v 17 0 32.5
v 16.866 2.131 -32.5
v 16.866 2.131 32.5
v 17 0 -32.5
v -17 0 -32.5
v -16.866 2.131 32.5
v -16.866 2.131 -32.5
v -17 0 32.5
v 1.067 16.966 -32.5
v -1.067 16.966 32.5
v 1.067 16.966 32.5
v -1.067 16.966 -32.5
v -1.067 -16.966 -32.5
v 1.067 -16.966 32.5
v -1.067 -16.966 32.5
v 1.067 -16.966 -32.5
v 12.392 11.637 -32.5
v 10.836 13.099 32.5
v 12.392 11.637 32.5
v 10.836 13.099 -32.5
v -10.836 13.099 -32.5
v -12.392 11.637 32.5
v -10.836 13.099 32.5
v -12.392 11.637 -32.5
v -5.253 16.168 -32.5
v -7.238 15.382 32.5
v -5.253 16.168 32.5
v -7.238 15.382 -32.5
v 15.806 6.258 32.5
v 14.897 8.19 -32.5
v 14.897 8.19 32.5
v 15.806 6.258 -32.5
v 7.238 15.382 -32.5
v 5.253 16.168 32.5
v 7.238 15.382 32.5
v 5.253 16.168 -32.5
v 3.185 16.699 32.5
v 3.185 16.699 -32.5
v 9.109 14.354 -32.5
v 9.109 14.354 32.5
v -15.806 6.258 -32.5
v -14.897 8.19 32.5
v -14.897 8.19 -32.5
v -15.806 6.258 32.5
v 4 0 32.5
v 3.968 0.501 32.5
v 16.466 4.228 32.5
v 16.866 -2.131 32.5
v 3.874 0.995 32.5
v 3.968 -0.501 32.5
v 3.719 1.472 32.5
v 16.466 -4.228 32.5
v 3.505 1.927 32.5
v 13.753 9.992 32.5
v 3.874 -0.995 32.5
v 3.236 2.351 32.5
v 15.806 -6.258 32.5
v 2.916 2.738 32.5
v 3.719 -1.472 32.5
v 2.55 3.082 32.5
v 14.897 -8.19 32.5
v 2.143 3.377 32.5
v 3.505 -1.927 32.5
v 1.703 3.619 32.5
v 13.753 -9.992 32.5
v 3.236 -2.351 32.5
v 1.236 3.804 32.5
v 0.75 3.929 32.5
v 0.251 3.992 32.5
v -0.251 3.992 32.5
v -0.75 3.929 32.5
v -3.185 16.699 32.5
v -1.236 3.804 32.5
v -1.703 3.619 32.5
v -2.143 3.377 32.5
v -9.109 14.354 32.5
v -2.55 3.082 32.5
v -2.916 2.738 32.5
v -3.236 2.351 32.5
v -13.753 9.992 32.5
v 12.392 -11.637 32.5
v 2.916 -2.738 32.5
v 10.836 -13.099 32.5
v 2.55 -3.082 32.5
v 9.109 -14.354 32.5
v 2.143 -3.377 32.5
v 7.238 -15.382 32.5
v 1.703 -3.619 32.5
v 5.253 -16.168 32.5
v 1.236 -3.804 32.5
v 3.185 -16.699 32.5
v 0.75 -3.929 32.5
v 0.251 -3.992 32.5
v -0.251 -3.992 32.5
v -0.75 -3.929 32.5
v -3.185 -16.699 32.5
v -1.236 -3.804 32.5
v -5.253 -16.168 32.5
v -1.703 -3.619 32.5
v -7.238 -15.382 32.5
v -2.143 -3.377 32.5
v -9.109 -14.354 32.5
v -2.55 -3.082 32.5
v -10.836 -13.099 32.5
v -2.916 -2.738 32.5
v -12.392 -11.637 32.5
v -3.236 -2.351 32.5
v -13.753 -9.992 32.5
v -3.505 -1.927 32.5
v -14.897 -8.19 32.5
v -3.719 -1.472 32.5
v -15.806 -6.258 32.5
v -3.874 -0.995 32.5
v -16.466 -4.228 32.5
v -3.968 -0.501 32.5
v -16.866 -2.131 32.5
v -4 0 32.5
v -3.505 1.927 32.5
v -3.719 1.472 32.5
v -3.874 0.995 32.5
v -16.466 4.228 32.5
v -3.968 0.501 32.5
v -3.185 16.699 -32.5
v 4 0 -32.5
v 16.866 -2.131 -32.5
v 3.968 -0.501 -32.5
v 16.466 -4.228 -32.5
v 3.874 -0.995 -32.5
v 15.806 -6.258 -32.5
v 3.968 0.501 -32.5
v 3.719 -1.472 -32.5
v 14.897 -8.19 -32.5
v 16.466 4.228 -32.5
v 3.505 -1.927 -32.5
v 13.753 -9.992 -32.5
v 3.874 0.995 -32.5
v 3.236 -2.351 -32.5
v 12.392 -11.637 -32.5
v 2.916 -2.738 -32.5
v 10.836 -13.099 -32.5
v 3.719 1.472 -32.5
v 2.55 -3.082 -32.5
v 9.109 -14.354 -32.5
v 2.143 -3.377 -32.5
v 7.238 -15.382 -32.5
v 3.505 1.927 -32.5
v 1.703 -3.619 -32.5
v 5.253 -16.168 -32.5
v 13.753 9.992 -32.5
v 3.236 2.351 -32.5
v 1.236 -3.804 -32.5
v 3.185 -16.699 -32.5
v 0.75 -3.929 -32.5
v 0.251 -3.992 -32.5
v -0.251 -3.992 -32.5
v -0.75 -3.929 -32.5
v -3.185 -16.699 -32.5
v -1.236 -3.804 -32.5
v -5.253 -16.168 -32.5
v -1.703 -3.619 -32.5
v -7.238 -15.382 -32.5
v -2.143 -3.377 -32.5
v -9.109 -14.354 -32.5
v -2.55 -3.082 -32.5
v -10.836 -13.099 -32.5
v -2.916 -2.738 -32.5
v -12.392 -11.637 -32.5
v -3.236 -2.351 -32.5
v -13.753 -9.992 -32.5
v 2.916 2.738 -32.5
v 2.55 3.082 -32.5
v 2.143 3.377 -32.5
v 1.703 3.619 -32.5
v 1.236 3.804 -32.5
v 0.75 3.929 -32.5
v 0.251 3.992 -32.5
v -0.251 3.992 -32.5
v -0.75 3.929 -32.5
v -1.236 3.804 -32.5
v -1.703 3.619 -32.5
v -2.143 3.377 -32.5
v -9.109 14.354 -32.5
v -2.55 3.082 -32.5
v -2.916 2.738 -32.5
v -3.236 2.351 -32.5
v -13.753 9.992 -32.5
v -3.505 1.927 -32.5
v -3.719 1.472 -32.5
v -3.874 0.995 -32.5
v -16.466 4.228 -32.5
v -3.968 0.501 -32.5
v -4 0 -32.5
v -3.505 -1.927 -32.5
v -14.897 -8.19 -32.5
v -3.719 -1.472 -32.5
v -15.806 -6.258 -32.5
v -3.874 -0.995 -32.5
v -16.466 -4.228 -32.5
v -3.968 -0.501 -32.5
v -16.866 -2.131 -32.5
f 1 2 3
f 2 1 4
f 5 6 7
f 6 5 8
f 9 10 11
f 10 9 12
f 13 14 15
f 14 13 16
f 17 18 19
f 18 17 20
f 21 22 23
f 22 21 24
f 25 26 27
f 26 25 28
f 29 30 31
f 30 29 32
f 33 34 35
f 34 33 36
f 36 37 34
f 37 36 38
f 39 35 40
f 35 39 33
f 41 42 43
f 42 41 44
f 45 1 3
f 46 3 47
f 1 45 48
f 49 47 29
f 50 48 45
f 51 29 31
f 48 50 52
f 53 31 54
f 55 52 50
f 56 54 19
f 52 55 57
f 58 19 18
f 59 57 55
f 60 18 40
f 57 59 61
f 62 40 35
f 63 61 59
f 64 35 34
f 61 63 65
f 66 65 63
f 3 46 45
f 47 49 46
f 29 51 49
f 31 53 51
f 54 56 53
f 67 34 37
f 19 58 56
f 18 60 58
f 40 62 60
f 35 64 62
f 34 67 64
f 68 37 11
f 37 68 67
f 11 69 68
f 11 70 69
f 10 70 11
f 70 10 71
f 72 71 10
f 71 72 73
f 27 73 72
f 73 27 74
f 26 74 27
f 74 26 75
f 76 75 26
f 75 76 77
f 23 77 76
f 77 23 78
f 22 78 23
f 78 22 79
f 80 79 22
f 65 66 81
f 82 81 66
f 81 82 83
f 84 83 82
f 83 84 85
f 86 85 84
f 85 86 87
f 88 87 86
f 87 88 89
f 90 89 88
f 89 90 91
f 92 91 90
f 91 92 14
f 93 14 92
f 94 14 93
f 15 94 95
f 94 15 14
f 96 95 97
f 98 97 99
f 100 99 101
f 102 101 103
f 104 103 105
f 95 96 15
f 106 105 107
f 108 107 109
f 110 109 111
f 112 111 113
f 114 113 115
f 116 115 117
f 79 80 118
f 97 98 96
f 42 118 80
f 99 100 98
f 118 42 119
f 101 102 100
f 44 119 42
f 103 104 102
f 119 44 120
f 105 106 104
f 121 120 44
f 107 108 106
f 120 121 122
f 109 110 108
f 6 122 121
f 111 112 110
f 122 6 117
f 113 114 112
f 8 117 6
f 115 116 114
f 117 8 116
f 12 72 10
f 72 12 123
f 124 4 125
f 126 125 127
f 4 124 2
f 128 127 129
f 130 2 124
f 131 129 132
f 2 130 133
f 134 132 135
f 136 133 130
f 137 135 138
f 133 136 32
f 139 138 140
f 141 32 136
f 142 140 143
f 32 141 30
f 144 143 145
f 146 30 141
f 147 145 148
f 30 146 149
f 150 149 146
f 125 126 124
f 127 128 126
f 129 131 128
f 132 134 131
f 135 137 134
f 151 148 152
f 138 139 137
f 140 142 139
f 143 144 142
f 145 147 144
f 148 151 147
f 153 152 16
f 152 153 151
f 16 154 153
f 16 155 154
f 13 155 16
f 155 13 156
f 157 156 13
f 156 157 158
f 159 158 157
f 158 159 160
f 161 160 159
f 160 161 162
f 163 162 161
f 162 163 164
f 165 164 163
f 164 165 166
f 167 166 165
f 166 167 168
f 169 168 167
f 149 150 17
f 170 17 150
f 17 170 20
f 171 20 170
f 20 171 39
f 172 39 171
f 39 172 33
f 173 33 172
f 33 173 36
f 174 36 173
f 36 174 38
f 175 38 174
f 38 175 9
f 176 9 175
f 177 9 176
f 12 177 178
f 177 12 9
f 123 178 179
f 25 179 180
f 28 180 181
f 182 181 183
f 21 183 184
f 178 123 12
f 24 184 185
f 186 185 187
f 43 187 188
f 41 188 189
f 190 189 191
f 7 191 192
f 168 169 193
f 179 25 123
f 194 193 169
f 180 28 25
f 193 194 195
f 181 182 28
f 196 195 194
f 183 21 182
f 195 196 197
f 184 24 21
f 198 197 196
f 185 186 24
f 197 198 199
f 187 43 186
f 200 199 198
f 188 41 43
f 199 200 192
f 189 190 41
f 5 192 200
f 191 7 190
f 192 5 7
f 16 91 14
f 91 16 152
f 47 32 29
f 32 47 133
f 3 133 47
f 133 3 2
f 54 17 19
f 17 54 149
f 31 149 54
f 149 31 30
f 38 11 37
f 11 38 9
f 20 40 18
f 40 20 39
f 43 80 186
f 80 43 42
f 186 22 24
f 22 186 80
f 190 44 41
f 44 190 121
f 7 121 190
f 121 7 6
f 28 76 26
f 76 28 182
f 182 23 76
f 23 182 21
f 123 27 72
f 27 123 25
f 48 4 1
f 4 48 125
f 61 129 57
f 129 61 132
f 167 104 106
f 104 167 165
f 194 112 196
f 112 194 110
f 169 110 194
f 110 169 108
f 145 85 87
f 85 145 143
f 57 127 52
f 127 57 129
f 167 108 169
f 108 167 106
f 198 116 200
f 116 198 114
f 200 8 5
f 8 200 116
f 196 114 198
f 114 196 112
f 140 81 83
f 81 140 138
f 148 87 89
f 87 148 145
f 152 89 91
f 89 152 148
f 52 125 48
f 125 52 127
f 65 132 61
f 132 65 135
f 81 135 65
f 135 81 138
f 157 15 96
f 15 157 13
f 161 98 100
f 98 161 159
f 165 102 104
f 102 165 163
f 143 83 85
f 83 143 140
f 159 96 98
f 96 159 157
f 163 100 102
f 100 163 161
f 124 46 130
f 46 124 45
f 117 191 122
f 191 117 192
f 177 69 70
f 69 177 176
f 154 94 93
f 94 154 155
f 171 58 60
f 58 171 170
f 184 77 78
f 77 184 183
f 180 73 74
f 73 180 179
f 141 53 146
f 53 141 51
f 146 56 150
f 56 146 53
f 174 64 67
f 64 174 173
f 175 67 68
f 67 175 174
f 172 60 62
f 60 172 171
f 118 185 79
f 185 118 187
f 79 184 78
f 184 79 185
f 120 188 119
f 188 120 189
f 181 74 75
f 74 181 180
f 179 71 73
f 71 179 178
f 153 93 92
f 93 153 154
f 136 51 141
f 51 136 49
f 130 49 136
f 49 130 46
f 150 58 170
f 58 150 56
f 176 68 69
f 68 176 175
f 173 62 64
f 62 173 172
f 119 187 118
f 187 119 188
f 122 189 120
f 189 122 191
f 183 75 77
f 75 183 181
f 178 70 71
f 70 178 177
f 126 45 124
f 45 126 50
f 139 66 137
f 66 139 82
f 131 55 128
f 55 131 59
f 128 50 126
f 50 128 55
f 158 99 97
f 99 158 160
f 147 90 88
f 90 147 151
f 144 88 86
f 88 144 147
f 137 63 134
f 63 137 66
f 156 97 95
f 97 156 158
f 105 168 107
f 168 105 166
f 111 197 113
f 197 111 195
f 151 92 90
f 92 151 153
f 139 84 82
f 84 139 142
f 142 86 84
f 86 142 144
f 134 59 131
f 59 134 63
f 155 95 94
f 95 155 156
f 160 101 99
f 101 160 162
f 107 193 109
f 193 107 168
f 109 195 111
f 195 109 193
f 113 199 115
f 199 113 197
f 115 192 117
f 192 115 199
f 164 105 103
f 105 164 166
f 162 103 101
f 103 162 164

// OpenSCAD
$fn = 50;


difference() {
	union() {
		translate(v = [0, 0, -32.5000000000]) {
			cylinder(h = 65, r = 17.0000000000);
		}
	}
	union() {
		translate(v = [0, 0, -100.0000000000]) {
			cylinder(h = 200, r = 4);
		}
	}
}
